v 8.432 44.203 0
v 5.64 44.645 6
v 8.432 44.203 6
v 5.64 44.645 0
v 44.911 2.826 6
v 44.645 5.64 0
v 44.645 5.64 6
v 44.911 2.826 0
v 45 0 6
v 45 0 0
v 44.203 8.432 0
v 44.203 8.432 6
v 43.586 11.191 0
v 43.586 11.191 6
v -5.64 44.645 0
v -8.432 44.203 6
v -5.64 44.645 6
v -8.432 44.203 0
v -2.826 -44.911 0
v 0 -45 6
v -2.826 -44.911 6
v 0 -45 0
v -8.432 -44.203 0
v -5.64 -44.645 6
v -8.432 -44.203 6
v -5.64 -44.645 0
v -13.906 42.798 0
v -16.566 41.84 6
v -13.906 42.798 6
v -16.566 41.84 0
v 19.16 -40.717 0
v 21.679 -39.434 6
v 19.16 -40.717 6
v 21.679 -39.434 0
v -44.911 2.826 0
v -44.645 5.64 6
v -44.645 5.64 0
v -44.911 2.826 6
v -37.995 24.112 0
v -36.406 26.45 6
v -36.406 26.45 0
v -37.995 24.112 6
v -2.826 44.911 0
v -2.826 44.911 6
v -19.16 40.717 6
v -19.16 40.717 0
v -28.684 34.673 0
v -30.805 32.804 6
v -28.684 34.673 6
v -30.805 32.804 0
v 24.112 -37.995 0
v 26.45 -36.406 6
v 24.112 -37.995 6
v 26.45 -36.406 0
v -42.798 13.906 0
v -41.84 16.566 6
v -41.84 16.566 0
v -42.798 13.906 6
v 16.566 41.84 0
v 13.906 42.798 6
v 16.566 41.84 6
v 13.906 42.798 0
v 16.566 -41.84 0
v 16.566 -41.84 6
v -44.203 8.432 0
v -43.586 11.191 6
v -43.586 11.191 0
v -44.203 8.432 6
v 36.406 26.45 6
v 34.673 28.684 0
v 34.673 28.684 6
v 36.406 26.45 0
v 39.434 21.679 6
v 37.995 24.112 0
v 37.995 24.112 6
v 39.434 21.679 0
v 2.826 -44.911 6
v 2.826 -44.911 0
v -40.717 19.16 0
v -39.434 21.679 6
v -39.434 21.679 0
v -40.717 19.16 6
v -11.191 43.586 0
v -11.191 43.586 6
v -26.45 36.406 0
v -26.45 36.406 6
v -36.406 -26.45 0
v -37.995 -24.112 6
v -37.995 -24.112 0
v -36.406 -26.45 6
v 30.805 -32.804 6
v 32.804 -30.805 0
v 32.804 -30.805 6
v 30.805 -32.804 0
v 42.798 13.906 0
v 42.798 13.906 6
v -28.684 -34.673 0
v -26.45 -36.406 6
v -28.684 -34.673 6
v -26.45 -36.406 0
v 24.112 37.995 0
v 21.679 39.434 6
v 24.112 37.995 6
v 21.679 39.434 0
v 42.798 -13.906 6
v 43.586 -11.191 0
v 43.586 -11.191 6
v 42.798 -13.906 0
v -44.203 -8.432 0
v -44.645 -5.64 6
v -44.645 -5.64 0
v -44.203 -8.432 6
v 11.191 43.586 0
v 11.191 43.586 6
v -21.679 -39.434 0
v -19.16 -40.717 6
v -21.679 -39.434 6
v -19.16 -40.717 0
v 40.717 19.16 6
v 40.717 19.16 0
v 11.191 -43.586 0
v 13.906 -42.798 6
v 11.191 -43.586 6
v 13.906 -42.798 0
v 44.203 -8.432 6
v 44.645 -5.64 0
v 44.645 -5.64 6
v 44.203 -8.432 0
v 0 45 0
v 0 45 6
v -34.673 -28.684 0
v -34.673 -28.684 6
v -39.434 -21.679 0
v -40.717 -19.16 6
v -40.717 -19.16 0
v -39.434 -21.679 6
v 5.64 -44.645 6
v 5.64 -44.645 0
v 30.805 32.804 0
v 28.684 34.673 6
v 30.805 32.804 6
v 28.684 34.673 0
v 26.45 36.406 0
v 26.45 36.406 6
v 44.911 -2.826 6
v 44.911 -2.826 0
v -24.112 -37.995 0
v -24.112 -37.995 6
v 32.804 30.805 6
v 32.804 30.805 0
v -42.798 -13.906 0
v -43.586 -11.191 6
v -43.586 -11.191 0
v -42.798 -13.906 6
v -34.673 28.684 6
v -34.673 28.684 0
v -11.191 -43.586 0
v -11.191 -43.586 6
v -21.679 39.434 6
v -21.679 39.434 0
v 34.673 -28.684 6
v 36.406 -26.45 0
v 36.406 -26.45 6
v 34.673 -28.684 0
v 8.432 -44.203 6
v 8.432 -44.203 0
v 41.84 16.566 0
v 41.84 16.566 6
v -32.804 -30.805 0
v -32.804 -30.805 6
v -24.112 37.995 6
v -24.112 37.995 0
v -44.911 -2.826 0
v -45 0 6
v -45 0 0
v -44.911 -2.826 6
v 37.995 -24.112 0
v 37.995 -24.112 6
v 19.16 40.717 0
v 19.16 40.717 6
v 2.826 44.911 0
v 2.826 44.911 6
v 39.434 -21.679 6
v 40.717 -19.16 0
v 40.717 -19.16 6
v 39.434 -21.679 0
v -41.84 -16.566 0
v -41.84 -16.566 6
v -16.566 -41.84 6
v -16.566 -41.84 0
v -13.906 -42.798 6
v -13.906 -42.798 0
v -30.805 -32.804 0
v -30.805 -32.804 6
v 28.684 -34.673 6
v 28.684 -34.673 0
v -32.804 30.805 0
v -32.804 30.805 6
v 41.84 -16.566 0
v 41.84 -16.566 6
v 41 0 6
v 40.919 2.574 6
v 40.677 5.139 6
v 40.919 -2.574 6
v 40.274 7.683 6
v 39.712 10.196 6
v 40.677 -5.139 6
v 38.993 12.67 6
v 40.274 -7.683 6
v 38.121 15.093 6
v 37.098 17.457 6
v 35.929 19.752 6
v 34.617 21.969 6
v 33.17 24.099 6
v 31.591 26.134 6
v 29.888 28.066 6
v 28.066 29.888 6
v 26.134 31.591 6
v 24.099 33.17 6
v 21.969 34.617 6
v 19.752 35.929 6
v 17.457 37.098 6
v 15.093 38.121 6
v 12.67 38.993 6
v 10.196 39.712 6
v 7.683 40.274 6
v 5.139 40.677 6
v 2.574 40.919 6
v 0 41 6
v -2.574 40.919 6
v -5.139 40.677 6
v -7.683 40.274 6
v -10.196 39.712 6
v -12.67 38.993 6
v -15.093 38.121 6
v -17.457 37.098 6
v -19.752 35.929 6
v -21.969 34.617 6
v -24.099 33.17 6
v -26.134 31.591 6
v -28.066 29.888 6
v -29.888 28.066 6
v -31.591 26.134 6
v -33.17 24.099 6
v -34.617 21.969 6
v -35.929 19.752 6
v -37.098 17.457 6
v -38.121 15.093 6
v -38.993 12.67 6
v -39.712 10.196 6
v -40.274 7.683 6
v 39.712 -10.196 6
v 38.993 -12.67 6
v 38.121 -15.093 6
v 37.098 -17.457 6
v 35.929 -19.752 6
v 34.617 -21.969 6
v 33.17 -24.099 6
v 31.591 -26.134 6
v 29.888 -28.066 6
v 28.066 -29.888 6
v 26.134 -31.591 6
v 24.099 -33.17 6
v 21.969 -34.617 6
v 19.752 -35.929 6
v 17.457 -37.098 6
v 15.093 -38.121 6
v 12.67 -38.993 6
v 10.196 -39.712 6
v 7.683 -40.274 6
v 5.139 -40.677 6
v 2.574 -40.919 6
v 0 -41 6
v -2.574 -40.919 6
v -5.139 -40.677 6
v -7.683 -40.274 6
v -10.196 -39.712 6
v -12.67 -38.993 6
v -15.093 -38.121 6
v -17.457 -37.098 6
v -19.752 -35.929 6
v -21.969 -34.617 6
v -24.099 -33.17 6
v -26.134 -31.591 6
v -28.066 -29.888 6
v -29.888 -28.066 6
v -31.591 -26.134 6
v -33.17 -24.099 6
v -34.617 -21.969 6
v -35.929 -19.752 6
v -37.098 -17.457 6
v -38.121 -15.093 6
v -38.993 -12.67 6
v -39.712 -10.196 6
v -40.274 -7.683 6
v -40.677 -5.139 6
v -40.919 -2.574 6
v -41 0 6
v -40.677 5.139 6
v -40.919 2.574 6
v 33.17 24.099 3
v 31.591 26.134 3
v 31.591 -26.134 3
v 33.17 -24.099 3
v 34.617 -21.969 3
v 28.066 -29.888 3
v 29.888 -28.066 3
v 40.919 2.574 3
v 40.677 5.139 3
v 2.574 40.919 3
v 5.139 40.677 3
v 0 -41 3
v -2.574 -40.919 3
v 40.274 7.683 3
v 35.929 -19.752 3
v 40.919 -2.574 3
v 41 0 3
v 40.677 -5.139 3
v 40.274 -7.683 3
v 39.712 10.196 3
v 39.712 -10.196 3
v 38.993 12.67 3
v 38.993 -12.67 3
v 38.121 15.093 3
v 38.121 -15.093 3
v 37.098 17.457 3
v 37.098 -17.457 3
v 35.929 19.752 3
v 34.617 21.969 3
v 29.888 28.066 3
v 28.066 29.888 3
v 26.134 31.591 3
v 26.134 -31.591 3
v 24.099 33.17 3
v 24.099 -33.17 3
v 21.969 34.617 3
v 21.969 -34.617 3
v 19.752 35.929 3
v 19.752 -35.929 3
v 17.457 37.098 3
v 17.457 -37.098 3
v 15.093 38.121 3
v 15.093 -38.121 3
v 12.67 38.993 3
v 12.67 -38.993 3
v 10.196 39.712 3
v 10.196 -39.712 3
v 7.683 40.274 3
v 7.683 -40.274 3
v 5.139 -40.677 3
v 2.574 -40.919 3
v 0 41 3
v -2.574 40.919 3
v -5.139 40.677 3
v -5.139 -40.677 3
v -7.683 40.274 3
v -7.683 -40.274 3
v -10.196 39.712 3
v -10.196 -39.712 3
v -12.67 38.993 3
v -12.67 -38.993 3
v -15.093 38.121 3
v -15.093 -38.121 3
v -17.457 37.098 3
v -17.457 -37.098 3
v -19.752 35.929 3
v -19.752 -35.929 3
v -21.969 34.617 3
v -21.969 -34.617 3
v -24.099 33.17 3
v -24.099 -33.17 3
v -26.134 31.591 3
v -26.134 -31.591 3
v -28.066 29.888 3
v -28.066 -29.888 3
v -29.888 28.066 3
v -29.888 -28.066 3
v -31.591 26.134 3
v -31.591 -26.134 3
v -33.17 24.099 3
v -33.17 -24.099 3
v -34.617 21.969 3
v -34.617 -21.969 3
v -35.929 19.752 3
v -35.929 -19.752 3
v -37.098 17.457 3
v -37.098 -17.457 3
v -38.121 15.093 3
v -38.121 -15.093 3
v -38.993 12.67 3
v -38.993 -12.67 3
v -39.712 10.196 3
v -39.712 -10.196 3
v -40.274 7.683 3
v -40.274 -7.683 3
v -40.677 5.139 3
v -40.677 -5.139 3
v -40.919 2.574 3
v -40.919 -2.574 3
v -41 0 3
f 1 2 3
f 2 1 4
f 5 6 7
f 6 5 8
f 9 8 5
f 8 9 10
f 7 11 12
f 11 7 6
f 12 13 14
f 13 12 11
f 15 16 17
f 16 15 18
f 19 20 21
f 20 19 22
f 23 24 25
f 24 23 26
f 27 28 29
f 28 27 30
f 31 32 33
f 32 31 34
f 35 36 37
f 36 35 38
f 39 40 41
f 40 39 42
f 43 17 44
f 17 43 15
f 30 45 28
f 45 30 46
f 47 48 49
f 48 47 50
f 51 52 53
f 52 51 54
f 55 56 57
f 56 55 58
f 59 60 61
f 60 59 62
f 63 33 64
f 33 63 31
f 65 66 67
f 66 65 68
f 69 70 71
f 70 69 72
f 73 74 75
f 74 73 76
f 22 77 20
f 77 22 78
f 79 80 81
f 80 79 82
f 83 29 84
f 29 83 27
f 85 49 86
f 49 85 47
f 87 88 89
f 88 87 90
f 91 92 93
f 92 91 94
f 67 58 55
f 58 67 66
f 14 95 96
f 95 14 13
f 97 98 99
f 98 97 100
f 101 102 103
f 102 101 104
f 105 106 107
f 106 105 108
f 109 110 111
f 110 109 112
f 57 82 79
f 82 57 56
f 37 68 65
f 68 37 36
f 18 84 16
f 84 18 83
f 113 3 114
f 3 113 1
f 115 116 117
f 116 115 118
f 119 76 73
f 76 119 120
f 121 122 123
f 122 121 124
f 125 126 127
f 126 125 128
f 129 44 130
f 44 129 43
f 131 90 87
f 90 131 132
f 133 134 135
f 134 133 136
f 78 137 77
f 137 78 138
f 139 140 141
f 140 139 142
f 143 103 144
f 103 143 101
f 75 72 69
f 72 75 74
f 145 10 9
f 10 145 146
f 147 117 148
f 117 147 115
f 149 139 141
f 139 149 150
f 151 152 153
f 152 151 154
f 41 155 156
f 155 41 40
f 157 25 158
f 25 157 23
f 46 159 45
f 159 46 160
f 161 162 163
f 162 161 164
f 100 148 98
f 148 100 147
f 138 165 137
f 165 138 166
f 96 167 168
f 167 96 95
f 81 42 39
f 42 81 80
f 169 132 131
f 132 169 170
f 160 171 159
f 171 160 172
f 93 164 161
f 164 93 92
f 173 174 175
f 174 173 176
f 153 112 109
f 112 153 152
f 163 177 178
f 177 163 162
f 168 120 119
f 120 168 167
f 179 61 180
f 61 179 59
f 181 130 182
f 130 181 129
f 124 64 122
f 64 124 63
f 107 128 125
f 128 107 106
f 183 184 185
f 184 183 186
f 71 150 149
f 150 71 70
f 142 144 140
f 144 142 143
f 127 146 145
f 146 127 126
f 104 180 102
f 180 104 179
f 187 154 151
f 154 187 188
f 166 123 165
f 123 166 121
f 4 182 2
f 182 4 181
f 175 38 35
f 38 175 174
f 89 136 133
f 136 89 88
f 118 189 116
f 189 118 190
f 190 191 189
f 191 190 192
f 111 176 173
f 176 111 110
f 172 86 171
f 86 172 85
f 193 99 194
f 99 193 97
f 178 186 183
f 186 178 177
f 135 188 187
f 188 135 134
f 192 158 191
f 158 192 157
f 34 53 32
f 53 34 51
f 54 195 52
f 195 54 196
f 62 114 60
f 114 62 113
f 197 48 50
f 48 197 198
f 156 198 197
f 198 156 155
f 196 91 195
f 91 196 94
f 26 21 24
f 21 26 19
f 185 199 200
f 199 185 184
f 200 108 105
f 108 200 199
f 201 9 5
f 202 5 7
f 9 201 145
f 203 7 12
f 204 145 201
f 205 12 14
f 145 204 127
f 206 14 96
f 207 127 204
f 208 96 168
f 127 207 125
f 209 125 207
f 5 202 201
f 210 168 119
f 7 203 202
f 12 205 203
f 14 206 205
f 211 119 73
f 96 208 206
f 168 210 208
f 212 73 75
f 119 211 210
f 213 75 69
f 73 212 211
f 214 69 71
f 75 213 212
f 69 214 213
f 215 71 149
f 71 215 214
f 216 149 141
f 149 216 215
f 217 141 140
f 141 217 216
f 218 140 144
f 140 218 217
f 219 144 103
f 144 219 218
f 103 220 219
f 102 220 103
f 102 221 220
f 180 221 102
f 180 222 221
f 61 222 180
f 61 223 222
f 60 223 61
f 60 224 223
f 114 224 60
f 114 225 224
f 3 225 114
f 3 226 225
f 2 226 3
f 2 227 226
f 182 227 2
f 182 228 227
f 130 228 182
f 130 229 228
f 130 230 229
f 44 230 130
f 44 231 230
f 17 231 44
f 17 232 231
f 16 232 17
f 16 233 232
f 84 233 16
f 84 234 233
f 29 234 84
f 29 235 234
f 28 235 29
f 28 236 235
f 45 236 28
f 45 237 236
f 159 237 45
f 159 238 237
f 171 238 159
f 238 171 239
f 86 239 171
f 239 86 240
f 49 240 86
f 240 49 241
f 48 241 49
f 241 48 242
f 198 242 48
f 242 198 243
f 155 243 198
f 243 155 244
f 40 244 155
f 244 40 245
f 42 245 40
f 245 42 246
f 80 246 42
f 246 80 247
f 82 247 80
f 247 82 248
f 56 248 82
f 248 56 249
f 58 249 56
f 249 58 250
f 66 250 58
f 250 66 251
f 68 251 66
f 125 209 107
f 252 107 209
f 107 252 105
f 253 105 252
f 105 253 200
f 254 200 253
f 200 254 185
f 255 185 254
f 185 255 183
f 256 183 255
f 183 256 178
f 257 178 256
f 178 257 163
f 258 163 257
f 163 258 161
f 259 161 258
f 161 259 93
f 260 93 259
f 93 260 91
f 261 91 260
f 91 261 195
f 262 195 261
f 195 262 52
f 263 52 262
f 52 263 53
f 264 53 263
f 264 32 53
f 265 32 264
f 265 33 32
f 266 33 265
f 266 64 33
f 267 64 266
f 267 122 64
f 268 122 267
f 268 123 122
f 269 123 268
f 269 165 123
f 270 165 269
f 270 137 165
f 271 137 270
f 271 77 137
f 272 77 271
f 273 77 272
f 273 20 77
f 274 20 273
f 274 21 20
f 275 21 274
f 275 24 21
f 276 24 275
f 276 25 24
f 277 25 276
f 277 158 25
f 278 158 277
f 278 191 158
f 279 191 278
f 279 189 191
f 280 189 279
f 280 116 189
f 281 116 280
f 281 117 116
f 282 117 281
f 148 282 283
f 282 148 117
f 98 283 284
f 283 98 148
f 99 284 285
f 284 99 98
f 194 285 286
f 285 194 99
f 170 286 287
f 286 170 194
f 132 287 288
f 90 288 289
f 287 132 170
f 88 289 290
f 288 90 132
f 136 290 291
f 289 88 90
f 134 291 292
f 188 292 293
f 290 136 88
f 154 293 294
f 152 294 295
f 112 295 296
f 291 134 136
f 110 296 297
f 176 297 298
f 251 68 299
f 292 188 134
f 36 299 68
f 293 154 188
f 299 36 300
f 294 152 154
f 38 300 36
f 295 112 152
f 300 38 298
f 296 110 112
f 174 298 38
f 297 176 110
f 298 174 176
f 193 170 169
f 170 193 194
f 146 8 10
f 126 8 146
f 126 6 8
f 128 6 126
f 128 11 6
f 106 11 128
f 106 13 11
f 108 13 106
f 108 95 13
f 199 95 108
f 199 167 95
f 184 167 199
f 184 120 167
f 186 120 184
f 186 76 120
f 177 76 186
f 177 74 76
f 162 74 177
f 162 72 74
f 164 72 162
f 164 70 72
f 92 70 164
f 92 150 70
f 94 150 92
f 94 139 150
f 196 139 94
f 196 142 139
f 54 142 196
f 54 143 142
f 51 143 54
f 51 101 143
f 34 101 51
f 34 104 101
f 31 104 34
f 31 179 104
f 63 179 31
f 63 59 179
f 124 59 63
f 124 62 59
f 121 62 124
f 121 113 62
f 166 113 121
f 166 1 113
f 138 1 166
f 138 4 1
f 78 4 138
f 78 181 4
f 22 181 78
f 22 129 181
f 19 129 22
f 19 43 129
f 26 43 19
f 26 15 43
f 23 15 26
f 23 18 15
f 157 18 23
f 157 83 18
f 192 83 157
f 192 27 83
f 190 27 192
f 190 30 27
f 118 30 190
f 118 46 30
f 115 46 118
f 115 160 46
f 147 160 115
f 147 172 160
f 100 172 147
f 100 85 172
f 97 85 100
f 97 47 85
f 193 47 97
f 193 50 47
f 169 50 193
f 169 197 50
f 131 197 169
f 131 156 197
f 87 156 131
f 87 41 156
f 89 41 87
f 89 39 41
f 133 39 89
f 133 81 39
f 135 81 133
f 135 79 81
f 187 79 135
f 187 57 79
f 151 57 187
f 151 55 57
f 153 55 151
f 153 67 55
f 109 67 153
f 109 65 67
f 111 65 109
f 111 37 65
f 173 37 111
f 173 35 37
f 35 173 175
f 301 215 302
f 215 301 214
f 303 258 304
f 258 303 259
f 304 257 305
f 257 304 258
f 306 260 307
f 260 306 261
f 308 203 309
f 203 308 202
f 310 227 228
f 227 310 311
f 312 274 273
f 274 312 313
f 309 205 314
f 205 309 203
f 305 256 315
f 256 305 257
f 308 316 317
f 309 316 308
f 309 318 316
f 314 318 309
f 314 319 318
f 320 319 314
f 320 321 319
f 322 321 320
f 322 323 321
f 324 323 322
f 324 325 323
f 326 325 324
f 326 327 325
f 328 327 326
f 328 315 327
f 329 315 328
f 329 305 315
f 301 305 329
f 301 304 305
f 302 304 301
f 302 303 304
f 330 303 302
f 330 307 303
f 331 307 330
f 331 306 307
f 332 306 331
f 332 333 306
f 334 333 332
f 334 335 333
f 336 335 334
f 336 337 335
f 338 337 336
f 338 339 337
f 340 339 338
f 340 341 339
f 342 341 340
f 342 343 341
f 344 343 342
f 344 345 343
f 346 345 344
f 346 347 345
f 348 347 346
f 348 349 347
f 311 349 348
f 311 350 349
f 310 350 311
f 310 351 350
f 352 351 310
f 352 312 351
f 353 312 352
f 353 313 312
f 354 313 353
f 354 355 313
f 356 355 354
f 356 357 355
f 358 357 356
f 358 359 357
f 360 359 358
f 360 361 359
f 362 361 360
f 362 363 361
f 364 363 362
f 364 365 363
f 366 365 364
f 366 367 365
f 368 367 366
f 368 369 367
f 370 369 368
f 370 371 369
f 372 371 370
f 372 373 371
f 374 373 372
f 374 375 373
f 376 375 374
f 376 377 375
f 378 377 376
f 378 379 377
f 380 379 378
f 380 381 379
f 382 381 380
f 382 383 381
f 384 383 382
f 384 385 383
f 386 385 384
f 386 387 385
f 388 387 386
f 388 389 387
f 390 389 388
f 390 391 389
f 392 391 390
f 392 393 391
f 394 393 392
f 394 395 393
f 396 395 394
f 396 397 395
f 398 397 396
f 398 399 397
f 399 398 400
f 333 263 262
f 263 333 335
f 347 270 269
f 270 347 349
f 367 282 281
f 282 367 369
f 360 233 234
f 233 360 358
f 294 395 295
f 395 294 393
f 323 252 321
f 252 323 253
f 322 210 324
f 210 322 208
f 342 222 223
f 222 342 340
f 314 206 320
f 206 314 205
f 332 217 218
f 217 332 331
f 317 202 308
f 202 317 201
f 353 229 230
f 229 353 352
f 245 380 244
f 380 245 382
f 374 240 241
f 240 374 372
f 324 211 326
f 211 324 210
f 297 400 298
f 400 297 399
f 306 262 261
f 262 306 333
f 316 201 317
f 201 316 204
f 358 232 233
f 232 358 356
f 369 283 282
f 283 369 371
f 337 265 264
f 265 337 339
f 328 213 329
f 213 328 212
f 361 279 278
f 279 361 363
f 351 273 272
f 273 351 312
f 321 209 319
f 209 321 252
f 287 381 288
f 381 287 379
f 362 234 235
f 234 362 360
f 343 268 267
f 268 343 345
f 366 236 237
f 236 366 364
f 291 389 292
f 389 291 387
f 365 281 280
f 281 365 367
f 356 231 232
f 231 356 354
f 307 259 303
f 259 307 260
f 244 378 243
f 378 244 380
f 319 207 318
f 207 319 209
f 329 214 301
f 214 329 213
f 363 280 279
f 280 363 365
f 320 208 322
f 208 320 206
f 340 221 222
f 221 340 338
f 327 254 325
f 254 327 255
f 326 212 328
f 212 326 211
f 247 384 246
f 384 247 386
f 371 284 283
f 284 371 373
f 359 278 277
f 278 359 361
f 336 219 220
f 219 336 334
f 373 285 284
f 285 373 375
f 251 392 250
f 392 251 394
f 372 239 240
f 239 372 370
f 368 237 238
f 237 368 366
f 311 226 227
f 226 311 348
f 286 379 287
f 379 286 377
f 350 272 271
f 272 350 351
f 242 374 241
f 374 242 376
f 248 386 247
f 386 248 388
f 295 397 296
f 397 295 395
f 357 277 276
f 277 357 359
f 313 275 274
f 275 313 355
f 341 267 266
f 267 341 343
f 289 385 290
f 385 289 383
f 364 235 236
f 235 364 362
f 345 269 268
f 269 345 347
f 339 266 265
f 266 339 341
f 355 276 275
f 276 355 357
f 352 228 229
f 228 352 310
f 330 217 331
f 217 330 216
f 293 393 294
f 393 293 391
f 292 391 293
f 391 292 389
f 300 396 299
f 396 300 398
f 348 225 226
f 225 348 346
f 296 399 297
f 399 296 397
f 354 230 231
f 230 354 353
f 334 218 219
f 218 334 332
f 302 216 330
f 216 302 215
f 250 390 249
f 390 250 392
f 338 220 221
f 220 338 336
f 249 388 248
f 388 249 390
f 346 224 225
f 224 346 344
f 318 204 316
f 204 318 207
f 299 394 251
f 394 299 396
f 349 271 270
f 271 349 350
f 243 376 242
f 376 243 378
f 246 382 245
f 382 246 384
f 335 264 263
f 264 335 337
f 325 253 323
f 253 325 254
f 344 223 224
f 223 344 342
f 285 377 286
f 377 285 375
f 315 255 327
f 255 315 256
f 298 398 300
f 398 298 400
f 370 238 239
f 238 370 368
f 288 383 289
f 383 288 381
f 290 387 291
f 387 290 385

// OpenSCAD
// ===== 例題3: コースター =====
// 丸い土台に、ふちのリング（こぼれ防止）をつけます。
// difference()は「引き算」。大きい円柱から小さい円柱をくり抜きます。

radius = 45;   // コースターの半径(mm)
height = 6;    // ぜんたいのたかさ(mm)
rim    = 4;    // ふちの太さ(mm)
depth  = 3;    // へこみのふかさ(mm)

$fn = 100;     // 円のなめらかさ（大きいほどなめらか）

difference() {
  cylinder(r = radius, h = height);                 // 土台
  translate([0, 0, height - depth])                 // 上から
    cylinder(r = radius - rim, h = depth + 1);      // 内側をくり抜く
}
